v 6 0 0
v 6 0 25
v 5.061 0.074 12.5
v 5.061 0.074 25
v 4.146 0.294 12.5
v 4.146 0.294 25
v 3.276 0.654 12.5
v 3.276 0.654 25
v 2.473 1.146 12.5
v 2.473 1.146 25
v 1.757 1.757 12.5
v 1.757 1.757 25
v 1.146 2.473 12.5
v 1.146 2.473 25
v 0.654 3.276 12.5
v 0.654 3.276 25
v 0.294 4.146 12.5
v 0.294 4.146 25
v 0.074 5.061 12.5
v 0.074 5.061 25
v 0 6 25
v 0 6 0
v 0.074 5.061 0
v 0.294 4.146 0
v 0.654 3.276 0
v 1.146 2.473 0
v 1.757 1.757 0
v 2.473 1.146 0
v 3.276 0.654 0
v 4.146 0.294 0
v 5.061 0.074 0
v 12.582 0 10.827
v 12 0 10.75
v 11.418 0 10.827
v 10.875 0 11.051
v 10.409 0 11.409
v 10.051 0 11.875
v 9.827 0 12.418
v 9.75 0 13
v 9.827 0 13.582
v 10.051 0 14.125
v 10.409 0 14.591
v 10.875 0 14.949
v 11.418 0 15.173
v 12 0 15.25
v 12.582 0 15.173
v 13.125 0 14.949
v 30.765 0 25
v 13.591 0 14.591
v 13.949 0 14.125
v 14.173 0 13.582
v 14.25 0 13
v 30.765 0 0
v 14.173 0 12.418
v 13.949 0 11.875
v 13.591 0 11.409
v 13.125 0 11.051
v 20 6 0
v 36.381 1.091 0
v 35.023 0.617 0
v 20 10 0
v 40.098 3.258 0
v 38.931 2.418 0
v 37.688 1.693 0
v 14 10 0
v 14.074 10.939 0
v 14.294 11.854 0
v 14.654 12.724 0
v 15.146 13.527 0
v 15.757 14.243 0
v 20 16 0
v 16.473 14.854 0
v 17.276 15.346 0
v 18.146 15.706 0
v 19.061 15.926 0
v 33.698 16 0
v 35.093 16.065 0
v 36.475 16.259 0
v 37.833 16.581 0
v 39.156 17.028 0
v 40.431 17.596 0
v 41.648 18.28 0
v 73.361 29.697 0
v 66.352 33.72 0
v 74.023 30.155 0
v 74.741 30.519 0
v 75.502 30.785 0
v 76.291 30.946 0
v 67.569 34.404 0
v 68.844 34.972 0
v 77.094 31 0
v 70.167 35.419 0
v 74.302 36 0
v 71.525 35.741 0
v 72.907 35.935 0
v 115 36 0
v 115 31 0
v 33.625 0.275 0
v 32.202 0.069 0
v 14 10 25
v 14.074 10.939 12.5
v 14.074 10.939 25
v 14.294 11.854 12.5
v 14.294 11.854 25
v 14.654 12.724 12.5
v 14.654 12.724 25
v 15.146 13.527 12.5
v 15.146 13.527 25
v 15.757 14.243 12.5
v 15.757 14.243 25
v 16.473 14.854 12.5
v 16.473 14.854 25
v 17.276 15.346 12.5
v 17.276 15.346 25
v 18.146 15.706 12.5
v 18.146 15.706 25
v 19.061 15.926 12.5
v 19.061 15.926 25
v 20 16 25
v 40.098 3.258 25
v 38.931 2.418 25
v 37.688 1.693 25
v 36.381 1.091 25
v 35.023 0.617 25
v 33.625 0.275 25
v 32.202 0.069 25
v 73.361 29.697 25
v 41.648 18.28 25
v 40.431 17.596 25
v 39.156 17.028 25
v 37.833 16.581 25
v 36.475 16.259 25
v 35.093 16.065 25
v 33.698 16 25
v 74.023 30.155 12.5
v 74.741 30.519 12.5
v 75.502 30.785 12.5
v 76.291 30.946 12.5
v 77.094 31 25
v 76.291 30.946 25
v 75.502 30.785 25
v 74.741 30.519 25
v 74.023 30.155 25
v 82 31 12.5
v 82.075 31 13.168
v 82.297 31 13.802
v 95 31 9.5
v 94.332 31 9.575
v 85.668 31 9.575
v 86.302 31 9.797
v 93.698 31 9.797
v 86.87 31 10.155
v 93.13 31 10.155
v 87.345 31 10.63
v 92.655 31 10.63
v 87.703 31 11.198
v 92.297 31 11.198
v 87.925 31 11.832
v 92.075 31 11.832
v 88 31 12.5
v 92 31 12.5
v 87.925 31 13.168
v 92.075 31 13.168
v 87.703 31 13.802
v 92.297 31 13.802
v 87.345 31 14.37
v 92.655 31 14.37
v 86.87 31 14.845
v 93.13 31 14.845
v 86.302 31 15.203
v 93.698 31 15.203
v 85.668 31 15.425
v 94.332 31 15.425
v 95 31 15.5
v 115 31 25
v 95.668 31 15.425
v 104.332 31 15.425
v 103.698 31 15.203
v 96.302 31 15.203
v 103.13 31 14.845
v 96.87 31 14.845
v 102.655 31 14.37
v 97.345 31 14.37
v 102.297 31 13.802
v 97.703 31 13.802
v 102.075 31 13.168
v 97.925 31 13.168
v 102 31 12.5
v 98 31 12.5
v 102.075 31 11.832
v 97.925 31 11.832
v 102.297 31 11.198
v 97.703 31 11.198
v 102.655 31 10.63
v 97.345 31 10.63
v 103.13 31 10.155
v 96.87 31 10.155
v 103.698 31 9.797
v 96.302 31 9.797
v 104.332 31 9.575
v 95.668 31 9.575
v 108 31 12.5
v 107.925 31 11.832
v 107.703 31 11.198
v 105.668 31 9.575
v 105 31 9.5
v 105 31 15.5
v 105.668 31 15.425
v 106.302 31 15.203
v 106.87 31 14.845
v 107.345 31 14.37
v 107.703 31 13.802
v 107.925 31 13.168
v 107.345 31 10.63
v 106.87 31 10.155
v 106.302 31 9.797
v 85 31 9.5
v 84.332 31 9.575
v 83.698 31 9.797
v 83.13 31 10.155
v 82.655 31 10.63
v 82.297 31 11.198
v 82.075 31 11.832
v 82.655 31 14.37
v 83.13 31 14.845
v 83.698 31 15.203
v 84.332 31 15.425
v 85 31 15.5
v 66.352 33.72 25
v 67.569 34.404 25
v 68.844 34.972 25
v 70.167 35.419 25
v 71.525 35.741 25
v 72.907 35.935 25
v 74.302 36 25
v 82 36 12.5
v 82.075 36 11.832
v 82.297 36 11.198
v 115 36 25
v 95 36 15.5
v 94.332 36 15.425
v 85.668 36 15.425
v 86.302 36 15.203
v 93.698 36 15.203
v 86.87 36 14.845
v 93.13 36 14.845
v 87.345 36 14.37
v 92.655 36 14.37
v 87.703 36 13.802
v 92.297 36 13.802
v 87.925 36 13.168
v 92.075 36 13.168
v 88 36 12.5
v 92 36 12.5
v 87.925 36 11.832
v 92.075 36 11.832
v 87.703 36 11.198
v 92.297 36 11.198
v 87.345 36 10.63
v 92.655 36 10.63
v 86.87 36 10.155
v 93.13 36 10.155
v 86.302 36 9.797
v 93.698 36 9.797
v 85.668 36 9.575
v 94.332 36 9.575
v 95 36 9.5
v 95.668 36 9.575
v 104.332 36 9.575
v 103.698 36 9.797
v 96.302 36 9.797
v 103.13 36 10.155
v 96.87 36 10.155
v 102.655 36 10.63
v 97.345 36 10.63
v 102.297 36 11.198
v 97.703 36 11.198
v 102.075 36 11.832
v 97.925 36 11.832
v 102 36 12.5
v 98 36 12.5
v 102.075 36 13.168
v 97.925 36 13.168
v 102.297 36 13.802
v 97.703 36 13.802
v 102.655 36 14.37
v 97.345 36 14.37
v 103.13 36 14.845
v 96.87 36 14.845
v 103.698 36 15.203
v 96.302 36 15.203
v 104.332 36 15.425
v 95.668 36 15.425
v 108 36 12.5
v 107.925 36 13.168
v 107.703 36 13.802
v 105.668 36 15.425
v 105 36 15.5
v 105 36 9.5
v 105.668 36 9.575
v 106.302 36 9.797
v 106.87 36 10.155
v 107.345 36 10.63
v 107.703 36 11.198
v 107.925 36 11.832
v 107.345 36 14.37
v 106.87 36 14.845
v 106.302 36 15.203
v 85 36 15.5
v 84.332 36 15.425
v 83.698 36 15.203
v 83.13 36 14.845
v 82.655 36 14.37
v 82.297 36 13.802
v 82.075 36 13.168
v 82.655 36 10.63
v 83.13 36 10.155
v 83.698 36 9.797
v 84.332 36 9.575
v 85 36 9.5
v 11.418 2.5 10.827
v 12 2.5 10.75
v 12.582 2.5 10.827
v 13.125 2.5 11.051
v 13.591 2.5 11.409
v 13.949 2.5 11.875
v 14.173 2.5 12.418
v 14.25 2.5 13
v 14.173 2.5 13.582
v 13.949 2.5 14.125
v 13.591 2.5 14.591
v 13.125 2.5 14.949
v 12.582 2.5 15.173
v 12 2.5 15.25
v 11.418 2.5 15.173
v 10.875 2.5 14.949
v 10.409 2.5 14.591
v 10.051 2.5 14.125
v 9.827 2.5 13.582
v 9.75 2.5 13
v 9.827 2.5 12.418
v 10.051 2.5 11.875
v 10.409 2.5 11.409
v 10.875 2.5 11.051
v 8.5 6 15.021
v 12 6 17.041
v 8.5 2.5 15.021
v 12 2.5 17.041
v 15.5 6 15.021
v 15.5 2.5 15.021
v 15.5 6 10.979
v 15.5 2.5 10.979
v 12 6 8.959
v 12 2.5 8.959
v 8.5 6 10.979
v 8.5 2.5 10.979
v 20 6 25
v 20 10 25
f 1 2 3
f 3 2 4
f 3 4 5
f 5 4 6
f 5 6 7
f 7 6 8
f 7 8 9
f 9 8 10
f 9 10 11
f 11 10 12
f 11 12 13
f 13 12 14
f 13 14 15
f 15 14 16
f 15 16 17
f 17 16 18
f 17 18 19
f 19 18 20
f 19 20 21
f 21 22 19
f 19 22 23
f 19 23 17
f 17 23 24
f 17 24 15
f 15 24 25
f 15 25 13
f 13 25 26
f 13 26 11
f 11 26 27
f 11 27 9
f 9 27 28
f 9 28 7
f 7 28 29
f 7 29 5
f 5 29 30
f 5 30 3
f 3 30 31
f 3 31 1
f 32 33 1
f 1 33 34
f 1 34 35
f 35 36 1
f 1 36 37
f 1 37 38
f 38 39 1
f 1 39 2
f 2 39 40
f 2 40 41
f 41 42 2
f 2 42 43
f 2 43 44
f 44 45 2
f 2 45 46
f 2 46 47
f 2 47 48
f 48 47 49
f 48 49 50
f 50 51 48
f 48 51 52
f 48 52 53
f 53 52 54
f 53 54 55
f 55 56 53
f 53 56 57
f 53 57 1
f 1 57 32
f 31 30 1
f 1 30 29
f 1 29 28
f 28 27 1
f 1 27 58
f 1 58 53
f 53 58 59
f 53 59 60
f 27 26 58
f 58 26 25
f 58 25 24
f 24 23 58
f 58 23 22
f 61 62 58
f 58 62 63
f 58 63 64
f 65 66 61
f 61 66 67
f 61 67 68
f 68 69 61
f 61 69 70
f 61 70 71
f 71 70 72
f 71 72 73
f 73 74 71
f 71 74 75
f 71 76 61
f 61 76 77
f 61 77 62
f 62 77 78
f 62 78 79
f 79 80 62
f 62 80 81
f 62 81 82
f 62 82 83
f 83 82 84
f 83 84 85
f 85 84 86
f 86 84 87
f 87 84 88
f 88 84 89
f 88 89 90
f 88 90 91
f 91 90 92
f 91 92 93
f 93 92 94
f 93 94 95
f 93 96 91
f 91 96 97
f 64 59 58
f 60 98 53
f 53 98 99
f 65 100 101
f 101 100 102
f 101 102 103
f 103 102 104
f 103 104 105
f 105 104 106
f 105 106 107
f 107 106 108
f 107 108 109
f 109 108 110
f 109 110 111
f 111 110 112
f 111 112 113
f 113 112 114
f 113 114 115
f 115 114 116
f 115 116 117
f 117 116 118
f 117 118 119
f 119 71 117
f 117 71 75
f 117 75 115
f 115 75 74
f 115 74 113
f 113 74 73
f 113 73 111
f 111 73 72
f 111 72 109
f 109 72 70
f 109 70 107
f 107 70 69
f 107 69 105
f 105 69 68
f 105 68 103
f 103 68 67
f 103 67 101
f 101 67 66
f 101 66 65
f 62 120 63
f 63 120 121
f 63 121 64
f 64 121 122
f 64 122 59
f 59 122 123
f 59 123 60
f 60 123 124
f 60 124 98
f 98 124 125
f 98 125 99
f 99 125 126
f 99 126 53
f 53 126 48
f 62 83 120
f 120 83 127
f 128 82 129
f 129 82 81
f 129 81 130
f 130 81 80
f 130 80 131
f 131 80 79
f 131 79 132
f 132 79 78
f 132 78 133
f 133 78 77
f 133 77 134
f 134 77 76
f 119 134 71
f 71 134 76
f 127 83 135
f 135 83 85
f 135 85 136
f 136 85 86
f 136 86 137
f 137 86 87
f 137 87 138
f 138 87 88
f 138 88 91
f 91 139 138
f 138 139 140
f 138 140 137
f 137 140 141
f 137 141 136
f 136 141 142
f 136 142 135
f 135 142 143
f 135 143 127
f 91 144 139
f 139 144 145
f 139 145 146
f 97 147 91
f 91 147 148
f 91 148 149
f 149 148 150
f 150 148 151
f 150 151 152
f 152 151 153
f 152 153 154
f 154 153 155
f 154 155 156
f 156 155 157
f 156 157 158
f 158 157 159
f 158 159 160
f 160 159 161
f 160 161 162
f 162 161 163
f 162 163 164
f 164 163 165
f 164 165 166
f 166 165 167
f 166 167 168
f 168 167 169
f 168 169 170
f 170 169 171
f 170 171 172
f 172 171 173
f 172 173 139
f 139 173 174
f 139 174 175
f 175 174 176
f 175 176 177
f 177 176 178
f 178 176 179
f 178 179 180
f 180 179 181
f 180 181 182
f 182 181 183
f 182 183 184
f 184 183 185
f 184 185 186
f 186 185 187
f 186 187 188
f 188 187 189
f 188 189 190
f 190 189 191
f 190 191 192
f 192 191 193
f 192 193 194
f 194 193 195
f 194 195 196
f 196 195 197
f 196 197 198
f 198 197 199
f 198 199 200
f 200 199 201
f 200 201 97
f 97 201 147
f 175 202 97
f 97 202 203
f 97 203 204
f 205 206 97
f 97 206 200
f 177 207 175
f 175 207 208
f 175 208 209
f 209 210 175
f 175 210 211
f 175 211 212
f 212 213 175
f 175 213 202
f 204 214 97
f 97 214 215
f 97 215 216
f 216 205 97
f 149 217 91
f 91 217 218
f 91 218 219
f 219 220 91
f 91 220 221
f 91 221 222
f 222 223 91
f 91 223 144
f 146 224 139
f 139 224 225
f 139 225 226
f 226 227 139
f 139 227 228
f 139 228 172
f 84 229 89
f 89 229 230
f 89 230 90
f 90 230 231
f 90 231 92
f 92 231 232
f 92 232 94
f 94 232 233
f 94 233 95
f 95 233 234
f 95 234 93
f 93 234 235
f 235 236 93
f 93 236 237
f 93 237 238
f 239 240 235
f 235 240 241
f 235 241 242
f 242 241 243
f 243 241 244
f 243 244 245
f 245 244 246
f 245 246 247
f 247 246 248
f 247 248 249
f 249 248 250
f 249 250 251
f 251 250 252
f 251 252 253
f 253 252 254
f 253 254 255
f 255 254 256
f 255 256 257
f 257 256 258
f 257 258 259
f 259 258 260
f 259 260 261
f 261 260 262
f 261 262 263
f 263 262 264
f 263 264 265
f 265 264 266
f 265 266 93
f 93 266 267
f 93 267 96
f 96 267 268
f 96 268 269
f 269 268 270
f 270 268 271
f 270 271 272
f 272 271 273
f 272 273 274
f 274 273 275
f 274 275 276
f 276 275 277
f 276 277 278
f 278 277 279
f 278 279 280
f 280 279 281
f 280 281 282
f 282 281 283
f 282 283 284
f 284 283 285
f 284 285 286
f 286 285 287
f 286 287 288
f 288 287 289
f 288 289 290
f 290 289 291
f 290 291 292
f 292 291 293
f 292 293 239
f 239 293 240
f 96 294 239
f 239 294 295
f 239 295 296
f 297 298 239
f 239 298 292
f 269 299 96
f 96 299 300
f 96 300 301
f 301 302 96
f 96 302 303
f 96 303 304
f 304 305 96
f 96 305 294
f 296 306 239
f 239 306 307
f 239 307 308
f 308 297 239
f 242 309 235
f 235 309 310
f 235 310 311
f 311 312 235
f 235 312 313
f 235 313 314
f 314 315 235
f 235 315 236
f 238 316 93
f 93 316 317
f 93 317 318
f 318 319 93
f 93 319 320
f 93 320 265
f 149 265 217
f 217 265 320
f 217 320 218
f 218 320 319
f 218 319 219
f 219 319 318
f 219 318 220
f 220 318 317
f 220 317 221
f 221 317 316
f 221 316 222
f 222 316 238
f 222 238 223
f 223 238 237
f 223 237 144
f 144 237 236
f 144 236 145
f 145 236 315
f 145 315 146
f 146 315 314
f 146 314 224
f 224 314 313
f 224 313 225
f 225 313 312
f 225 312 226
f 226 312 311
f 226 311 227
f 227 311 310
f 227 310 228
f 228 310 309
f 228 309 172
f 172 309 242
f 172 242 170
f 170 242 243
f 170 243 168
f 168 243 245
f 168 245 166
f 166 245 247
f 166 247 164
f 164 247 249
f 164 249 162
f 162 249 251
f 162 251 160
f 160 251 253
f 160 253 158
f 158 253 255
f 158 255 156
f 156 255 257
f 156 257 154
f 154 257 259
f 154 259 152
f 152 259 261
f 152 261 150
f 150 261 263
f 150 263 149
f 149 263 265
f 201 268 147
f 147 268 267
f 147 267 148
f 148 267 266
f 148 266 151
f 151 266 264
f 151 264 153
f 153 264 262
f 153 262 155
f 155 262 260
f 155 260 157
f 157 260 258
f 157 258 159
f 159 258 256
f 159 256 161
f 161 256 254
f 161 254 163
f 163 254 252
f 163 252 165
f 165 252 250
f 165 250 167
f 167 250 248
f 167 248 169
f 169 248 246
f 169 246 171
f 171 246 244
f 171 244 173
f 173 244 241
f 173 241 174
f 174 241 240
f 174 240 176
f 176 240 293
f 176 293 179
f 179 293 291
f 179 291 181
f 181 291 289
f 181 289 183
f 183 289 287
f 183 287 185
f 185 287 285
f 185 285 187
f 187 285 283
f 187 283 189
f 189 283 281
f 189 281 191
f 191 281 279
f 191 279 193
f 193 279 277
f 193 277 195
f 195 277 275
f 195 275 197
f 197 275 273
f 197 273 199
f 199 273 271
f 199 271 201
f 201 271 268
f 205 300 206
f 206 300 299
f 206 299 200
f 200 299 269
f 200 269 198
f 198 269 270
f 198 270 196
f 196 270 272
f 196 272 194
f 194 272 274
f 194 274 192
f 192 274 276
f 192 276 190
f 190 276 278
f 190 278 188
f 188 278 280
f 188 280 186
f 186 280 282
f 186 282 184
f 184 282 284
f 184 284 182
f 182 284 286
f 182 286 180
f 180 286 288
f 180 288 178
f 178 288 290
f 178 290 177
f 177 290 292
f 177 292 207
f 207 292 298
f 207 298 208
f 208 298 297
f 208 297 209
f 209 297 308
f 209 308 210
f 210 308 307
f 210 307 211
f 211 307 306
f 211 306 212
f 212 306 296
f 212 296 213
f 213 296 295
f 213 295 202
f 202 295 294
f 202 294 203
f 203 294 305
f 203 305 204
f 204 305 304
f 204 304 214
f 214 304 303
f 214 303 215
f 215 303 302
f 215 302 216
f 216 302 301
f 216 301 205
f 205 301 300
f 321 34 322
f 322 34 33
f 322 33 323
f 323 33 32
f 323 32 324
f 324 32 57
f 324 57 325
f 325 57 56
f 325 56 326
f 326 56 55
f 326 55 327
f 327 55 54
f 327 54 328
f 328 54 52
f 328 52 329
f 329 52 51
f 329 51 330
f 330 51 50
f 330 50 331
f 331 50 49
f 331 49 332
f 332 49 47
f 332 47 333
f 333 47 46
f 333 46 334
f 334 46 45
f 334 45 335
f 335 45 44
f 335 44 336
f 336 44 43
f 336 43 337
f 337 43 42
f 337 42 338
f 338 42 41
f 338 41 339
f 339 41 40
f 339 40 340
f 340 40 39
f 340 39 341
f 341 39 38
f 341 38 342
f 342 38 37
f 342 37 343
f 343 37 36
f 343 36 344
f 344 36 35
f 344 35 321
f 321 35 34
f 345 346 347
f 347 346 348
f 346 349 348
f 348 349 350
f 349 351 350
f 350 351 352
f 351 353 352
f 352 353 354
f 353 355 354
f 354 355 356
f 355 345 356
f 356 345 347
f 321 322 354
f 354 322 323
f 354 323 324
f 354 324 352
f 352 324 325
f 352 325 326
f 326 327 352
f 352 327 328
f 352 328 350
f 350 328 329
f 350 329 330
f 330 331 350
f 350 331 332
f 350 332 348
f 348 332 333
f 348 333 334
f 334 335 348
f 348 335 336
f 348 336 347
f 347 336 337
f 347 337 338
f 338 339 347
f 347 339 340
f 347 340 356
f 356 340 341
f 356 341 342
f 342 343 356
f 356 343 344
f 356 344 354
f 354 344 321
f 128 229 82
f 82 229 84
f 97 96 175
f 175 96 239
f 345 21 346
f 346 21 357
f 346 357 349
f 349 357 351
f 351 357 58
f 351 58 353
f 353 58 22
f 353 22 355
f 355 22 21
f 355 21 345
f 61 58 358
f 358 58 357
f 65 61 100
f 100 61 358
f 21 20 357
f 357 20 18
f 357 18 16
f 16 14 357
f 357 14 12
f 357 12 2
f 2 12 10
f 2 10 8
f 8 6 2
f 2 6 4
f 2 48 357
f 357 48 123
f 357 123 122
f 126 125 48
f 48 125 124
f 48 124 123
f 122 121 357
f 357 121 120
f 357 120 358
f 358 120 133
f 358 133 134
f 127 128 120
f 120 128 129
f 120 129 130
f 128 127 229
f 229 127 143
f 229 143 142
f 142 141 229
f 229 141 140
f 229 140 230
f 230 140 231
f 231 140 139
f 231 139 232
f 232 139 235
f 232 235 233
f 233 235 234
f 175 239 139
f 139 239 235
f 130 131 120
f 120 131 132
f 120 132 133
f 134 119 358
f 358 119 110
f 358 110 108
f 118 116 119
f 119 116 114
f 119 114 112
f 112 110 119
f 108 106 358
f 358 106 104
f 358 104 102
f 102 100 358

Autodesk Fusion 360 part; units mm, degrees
sketch "Sketch1" plane through (0, 0, 0) normal (0, 0, 1) x (1, 0, 0)
  line L0 (0, 0) -> (0, 6)
  line L1 (0, 6) -> (20, 6)
  line L2 (20, 6) -> (20, 10)
  line L3 (20, 10) -> (14, 10)
  line L4 (14, 16) -> (14, 10)
  line L5 (14, 16) -> (38, 16)
  line L6 (38, 16) -> (70, 36)
  line L7 (70, 36) -> (115, 36)
  line L8 (115, 36) -> (115, 31)
  line L9 (115, 31) -> (75, 31)
  line L10 (75, 31) -> (36, 0)
  line L11 (36, 0) -> (0, 0)
  dimension "d1" = 4
  dimension "d2" = 24
  dimension "d6" = 115
  dimension "d7" = 5
  dimension "d8" = 45
  dimension "d10" = 20
  dimension "d11" = 36
  dimension "d12" = 16
  dimension "d13" = 6
  dimension "d14" = 14
  dimension "d15" = 36
  dimension "d16" = 40
extrude "Extrude1" add sketch "Sketch1" along normal blind 25
sketch "Sketch2" plane through (0, 6, 0) normal (0, 1, 0) x (-1, 0, 0)
  line L0 (-20, 0) -> (0, 0)
  line L1 (0, 0) -> (0, 25)
  line L2 (0, 25) -> (-20, 25)
  line L3 (-20, 25) -> (-20, 0)
  line L4 (0, 13) -> (-20, 13) construction
  line L5 (-12, 25) -> (-12, 0) construction
  line L6 (-8.5, 15.0207) -> (-12, 17.0415)
  line L7 (-12, 17.0415) -> (-15.5, 15.0207)
  line L8 (-15.5, 15.0207) -> (-15.5, 10.9793)
  line L9 (-15.5, 10.9793) -> (-12, 8.9585)
  line L10 (-12, 8.9585) -> (-8.5, 10.9793)
  line L11 (-8.5, 10.9793) -> (-8.5, 15.0207)
  point P0 (-12, 13)
  dimension "d19" = 12
  dimension "d20" = 3.5
extrude "Extrude2" cut sketch "Sketch2" against normal blind 3.5 contours L6 L7 L8 L9 L10 L11
hole "Hole1" at (12, 6, 13) direction (0, -1, 0) diameter 4.5 end through all
sketch "Sketch3" plane through (0, 36, 0) normal (0, 1, 0) x (-1, 0, 0)
  line L0 (-115, 0) -> (-70, 0)
  line L1 (-70, 0) -> (-70, 25)
  line L2 (-70, 25) -> (-115, 25)
  line L3 (-115, 25) -> (-115, 0)
  line L4 (-115, 12.5) -> (-70, 12.5) construction
  line L5 (-105, 25) -> (-105, 0) construction
  point P0 (-105, 12.5)
  dimension "d26" = 10
hole "Hole2" at (105, 36, 12.5) direction (0, -1, 0) diameter 6 depth 6.5 tip angle 118
pattern_linear "R-Pattern1" count 3 spacing 10 along (-1, 0, 0) of "Hole2"
fillet "Fillet1" radius 15 1 edges at (70, 36, 12.5)
fillet "Fillet1" radius 6 1 edges at (75, 31, 12.5)
fillet "Fillet2" radius 15 2 edges at (38, 16, 12.5) (36, 0, 12.5)
fillet "Fillet3" radius 6 1 edges at (14, 16, 12.5)
fillet "Fillet4" radius 6 1 edges at (0, 0, 12.5)
